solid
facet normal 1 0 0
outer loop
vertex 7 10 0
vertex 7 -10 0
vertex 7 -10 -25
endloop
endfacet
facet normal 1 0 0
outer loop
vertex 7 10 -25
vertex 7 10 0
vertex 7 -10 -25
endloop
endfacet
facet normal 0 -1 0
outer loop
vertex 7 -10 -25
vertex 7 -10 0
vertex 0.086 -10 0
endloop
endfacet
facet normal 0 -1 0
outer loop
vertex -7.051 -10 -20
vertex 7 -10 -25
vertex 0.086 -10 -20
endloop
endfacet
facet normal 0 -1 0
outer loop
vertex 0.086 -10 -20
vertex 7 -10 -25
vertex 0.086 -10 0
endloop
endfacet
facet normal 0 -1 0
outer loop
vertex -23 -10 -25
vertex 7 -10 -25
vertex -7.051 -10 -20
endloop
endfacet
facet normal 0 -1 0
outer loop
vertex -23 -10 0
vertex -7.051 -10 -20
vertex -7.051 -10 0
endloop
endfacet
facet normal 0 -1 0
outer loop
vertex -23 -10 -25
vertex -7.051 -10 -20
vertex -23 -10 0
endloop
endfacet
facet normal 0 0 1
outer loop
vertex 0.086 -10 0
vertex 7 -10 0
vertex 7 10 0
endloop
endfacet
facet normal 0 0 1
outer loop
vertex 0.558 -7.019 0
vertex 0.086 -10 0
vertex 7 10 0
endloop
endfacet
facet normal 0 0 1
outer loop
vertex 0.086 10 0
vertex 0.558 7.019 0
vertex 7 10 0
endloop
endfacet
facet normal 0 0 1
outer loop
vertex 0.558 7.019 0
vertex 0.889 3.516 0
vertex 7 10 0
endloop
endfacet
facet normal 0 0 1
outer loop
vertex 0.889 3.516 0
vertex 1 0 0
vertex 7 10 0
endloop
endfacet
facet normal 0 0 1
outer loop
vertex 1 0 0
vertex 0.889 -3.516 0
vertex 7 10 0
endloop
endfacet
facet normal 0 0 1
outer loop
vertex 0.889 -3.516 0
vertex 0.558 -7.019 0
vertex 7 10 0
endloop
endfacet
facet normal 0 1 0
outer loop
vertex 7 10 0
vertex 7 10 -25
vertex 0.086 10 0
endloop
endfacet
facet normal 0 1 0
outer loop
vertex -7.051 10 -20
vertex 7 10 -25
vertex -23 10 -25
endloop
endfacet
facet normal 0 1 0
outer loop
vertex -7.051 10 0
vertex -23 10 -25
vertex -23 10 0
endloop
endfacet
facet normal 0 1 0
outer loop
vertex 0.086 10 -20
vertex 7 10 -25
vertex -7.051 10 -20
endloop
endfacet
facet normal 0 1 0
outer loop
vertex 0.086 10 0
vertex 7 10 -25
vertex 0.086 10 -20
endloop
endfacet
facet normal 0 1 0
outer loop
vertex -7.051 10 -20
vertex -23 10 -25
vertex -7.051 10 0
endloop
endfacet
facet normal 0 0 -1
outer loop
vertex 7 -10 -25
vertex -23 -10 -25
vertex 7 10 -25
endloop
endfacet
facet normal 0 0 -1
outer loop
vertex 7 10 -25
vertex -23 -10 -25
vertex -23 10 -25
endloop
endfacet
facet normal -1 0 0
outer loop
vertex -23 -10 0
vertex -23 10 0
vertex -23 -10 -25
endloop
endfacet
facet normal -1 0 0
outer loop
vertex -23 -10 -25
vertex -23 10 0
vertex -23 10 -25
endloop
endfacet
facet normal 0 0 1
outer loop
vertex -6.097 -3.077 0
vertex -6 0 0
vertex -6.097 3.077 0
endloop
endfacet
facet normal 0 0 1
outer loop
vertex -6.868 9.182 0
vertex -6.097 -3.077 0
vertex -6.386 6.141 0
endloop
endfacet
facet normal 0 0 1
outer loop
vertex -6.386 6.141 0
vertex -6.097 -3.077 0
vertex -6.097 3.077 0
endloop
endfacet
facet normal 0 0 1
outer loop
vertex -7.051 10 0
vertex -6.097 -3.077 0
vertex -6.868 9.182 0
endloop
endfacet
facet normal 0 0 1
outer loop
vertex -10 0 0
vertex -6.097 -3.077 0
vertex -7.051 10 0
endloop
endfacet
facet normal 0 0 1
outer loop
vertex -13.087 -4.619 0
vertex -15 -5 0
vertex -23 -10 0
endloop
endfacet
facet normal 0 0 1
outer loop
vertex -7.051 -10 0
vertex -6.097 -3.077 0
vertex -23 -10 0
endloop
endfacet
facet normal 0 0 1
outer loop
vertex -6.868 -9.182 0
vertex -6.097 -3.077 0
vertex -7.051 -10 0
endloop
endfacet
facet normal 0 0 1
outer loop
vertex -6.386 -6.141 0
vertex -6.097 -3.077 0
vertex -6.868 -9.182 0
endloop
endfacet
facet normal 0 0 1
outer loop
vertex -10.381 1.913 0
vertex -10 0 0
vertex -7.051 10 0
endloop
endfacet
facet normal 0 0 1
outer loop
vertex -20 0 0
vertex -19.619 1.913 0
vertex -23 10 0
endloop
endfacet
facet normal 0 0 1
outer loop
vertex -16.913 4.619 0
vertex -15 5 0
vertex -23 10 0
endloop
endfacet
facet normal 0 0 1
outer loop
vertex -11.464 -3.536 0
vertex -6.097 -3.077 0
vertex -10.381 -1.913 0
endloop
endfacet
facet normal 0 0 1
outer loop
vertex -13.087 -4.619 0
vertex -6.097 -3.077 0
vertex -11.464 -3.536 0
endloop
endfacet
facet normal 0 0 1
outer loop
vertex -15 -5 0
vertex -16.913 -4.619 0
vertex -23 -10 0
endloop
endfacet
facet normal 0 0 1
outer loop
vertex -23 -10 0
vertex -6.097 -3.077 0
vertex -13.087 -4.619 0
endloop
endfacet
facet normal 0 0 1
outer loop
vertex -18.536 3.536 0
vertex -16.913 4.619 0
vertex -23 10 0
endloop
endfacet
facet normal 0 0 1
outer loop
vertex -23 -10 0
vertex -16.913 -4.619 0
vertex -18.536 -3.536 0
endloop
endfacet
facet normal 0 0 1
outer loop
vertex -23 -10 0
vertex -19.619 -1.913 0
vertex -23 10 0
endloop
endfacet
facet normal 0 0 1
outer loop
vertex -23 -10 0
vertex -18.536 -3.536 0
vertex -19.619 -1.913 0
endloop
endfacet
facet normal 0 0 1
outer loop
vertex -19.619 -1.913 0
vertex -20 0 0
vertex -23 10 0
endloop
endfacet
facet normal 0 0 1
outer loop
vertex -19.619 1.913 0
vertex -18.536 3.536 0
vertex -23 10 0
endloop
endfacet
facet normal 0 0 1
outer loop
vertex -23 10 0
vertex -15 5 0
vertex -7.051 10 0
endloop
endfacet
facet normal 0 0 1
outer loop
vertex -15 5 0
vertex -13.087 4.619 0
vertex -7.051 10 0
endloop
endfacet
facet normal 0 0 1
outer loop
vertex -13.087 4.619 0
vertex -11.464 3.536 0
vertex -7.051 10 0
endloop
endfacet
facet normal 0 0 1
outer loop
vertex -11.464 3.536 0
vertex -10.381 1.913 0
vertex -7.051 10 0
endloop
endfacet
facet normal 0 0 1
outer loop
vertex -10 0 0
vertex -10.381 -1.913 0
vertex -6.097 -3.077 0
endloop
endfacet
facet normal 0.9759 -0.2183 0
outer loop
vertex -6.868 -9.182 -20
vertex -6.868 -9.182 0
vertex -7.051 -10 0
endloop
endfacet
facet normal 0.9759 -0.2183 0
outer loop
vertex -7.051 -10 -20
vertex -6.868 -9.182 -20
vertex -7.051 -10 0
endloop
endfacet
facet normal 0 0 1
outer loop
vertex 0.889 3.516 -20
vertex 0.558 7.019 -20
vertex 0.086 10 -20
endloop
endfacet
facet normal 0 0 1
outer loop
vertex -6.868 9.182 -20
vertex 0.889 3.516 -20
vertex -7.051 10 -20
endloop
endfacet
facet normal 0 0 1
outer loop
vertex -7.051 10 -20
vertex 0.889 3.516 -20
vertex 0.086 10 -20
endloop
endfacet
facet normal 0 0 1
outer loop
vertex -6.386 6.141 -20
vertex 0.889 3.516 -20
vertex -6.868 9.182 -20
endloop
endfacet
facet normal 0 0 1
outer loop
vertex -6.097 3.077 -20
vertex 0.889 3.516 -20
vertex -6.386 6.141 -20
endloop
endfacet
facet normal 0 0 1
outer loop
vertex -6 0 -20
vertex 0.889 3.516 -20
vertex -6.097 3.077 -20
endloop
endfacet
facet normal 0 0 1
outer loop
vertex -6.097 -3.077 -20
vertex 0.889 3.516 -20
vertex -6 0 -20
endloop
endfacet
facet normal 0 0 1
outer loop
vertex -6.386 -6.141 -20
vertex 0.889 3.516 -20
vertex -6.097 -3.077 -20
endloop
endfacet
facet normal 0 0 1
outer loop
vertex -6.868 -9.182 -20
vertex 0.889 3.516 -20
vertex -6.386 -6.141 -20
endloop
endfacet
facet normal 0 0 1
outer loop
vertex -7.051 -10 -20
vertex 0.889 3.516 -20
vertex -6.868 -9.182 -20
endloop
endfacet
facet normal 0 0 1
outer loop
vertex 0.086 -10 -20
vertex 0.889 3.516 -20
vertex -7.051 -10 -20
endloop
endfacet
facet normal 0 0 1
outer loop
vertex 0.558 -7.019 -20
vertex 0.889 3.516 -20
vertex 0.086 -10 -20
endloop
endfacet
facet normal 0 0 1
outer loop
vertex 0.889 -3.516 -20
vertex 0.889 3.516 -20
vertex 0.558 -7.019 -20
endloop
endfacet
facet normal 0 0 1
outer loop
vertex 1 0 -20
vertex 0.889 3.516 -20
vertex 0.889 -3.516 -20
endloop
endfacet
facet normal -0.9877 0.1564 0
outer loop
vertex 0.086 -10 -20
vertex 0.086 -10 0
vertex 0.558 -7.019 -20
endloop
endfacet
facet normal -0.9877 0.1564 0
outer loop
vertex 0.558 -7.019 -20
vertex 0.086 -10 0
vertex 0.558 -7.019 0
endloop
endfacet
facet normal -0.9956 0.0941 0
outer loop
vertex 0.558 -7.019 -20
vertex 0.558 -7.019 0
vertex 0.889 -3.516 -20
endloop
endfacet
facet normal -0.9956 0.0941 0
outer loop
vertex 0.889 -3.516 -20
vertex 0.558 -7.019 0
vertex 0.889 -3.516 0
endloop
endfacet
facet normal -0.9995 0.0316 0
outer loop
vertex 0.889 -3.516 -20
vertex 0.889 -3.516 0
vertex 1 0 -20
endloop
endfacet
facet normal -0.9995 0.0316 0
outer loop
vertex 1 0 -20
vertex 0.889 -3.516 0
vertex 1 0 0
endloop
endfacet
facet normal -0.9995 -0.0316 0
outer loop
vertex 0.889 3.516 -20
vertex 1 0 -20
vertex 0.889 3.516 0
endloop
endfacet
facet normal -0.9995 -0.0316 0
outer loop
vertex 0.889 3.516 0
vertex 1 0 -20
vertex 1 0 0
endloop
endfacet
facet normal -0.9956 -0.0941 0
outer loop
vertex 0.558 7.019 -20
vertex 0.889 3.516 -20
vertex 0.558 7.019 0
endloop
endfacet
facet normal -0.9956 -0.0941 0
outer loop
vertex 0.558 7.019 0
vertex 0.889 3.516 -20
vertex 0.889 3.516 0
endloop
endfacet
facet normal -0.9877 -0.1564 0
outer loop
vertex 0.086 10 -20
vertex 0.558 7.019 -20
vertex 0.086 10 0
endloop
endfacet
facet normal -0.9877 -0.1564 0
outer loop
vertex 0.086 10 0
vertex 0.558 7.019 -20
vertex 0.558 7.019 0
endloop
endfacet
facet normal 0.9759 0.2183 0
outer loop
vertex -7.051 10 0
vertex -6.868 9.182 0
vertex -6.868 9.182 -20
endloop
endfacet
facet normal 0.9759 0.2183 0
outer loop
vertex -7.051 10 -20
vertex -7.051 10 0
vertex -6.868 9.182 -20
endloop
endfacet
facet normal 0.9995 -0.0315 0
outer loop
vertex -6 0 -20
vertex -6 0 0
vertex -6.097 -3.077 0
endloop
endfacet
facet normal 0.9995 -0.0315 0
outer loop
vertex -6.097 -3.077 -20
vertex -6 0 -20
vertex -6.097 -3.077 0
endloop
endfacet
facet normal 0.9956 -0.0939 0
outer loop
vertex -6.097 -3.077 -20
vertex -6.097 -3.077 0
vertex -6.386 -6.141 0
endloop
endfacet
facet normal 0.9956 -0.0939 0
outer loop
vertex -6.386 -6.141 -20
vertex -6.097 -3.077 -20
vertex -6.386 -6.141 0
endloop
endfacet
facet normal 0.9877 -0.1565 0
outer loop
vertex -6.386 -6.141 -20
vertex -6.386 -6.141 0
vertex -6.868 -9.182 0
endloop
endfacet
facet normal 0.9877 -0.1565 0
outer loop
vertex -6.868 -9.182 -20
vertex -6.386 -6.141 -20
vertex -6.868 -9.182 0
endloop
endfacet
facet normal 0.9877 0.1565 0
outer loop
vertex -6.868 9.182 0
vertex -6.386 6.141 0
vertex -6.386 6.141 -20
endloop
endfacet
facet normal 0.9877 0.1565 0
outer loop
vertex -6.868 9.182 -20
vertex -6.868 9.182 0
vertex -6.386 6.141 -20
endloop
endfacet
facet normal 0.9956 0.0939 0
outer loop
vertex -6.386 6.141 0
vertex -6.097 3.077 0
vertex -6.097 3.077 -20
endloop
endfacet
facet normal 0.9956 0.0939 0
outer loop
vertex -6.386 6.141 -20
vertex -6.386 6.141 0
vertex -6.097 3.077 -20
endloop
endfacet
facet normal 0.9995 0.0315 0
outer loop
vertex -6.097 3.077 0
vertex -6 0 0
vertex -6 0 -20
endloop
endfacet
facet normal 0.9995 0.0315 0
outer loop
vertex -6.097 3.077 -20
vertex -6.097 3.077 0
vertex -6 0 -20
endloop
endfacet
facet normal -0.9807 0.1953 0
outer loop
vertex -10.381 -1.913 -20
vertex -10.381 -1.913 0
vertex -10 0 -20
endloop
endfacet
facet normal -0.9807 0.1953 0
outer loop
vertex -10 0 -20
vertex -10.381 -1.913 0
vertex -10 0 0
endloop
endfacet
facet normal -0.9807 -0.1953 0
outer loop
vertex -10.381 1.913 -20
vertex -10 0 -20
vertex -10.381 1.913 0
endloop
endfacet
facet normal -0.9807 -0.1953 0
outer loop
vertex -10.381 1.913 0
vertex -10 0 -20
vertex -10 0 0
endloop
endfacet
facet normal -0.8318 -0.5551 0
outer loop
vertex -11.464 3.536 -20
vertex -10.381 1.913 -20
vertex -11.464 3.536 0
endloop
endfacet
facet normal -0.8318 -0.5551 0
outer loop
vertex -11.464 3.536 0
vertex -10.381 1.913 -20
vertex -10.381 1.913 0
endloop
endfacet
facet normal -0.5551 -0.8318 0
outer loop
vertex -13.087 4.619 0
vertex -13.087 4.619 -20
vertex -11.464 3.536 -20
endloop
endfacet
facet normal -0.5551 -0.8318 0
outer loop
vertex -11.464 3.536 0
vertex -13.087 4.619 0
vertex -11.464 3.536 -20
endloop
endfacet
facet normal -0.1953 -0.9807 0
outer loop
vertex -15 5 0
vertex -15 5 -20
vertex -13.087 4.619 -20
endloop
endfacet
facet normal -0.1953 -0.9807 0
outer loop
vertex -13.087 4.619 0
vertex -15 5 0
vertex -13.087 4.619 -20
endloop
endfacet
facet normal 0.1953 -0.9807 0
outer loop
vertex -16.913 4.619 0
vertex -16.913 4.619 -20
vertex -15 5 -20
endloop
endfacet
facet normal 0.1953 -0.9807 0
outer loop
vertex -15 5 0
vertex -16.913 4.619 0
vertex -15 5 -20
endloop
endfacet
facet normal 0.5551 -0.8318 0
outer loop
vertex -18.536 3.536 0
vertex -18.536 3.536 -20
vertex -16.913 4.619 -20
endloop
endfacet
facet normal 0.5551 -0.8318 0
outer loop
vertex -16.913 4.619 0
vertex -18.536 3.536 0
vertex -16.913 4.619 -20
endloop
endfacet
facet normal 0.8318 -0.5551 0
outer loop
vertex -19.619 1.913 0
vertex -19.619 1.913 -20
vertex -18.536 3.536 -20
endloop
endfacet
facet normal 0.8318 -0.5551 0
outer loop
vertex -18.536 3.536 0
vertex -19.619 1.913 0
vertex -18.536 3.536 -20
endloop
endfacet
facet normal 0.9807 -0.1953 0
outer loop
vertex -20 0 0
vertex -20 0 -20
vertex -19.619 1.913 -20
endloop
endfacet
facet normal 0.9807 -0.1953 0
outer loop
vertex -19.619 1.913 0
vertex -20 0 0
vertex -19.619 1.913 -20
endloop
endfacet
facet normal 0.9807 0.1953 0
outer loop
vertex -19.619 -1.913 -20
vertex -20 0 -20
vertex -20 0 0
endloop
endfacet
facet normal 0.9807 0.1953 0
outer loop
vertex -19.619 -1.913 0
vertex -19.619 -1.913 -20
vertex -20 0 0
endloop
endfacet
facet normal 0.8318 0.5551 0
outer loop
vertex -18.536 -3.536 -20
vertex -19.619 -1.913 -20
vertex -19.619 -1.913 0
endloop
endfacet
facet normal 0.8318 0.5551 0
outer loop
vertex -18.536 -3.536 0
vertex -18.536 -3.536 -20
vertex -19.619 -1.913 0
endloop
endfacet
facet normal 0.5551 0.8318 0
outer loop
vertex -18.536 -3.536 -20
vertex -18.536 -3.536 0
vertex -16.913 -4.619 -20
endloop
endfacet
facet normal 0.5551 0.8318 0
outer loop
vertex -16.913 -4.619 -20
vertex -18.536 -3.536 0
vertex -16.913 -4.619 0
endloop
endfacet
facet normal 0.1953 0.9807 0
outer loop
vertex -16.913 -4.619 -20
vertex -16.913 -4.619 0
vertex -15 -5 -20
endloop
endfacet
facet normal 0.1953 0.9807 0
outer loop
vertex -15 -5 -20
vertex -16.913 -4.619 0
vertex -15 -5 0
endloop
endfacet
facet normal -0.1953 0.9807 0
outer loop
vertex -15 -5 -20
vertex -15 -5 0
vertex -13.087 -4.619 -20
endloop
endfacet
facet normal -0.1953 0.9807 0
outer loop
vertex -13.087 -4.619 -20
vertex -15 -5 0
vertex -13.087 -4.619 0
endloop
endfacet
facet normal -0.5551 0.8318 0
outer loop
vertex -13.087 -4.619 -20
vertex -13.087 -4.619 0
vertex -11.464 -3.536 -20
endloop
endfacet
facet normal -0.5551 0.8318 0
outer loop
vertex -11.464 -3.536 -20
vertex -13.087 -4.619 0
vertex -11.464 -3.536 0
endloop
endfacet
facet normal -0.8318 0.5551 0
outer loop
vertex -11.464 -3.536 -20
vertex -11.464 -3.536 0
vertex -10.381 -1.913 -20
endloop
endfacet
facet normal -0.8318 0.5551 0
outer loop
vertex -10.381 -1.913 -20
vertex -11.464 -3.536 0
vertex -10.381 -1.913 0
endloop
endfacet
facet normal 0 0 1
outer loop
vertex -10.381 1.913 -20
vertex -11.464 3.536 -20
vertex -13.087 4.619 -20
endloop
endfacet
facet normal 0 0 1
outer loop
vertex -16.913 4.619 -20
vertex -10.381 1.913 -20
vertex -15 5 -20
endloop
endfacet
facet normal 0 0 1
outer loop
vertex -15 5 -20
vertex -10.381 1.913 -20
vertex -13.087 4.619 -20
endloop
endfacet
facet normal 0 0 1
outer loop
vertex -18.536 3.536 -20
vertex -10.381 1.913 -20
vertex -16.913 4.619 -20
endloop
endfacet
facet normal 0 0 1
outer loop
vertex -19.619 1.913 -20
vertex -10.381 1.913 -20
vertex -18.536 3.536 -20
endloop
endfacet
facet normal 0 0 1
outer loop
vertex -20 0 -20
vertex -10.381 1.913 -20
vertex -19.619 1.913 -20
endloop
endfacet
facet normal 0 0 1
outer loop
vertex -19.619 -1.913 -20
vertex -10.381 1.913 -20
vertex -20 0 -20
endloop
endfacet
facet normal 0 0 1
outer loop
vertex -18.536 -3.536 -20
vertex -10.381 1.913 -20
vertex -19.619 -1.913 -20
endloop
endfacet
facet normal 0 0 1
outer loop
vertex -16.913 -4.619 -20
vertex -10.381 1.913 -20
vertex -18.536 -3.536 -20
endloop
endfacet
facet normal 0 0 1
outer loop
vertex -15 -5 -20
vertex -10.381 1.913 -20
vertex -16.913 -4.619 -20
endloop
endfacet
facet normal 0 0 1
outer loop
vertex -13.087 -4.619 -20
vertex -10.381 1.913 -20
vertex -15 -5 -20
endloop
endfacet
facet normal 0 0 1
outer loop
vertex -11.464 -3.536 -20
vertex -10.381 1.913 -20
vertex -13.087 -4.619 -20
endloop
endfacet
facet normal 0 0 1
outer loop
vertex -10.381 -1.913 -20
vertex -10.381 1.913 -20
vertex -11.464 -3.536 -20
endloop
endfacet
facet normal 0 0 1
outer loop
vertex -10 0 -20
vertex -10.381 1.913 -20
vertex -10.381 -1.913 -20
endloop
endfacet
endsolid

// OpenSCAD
rotate([0,180,0])
difference(){
difference(){
	translate([8,0,12.5])
	cube(size = [30,20,25], center = true);
		union(){
		translate([55,0,0])
			difference(){
				// removed groove 
				#cylinder(h = 20, r=56, $fn=100);
				#cylinder(h = 20, r=49, $fn=100);
			}

		}
translate([15,0])
//Dowel Hole or latern maybe spoon
cylinder(h = 20, r=5);
}
}
